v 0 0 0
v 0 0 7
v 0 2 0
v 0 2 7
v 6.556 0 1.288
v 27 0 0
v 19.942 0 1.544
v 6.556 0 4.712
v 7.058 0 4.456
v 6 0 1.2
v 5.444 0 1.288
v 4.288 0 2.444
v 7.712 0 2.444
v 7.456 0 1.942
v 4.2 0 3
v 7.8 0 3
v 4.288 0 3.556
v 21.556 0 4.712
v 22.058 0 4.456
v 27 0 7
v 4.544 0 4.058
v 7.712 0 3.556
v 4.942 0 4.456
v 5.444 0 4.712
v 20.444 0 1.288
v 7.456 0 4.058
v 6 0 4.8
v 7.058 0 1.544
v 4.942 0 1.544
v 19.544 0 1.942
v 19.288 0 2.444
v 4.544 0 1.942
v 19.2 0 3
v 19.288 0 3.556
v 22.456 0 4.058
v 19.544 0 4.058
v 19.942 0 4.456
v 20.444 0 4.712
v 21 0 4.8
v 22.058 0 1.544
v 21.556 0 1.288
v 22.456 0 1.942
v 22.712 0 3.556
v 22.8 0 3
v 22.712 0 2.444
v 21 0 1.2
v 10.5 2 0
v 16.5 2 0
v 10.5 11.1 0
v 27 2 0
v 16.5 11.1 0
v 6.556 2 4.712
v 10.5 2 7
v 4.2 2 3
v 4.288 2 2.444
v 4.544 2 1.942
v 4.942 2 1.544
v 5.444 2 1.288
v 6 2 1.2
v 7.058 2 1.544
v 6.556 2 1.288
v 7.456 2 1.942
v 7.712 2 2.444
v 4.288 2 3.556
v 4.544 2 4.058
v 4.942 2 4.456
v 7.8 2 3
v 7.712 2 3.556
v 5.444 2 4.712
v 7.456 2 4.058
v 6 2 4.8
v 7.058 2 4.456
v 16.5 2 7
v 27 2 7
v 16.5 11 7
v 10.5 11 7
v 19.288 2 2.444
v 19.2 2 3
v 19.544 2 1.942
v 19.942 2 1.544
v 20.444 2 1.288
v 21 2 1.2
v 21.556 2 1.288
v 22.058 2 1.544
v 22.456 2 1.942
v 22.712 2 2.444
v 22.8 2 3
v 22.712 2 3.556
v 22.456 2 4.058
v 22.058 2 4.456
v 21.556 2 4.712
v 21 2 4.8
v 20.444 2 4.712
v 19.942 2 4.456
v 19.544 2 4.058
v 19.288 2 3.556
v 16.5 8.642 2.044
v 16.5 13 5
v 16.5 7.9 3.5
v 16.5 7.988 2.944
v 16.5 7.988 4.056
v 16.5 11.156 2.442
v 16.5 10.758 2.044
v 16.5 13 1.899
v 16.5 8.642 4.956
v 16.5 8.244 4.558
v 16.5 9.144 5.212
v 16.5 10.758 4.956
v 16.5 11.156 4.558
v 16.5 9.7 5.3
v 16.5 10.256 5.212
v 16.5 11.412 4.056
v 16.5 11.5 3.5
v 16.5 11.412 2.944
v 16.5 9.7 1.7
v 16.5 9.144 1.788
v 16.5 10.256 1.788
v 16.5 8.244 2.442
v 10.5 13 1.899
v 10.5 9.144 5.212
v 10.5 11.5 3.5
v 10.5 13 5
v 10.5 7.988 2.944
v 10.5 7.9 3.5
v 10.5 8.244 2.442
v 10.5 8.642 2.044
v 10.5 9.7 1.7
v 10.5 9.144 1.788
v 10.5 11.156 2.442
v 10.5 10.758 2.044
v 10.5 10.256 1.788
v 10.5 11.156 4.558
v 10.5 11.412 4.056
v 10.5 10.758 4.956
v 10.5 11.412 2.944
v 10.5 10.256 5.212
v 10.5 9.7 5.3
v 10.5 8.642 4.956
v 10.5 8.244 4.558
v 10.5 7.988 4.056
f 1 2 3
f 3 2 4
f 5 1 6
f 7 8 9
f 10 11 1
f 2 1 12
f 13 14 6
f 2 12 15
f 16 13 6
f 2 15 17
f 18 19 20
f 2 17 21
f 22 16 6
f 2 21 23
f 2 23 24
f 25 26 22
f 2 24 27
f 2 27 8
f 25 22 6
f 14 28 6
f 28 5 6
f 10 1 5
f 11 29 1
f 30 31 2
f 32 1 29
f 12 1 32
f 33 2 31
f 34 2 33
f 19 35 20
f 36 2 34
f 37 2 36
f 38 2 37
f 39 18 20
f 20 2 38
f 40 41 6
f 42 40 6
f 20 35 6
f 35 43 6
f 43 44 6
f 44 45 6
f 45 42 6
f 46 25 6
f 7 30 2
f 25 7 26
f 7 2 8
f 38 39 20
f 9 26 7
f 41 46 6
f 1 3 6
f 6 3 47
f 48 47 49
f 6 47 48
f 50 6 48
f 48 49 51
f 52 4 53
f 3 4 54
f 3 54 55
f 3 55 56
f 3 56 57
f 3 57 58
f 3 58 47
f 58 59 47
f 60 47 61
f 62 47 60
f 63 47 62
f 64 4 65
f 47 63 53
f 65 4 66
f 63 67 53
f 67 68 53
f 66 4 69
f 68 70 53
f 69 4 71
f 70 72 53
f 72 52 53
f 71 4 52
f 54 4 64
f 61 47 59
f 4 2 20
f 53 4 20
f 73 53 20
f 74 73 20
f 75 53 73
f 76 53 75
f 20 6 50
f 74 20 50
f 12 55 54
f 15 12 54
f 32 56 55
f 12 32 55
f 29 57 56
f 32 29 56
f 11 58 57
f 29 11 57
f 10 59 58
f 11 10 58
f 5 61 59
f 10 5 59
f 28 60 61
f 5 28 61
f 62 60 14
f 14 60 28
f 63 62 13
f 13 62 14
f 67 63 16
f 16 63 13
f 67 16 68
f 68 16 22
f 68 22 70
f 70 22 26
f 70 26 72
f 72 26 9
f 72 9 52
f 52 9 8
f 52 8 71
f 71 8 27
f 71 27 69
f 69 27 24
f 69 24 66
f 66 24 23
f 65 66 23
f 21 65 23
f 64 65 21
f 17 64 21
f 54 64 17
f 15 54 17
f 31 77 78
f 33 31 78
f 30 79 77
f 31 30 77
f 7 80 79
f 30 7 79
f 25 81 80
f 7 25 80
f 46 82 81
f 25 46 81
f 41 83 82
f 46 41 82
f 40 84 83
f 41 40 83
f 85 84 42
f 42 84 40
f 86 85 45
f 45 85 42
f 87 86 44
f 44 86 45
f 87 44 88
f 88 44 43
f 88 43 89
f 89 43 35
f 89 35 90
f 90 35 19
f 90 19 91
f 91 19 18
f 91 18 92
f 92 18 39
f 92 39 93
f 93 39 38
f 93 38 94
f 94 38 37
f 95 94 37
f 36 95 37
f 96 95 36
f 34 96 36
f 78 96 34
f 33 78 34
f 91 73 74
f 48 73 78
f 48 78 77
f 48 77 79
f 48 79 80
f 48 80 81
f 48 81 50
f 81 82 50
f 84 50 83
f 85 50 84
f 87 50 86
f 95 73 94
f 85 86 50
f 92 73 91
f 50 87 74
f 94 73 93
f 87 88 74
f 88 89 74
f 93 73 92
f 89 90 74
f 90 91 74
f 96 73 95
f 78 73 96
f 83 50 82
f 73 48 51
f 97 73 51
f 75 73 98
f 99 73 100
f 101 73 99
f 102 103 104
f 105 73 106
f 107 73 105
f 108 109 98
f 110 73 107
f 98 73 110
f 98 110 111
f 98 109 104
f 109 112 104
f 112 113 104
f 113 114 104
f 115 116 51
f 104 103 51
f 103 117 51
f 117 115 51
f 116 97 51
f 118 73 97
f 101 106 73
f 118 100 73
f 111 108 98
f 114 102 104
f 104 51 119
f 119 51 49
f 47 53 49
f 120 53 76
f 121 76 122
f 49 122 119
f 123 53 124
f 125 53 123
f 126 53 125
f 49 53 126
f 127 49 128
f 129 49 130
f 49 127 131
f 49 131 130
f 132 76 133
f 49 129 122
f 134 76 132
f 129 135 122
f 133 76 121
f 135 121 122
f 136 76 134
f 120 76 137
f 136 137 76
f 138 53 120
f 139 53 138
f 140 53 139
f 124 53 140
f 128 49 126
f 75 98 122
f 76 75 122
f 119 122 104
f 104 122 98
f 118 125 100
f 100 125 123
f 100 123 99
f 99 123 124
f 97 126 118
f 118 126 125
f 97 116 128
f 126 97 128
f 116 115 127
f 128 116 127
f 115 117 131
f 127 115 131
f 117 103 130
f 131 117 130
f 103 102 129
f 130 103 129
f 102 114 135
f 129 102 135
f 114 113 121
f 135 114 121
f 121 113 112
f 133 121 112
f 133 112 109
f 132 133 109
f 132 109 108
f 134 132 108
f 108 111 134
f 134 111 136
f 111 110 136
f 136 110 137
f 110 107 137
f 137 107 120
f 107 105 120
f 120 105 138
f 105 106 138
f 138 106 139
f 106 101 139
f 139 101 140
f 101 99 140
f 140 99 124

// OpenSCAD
//  Prusa i3 Rework Extruder Additional Fan Mounts Customizable
//
//  I printed the Prusa i3 Rework Extruder Upgrade.
//  http://www.thingiverse.com/thing:291291
//  It only had one fan mount which I used for the extruder
//  cold end fan shroud.  I wanted to add an additional
//  fan and shroud
//  http://www.thingiverse.com/thing:217253
//  to cool my PLA prints but had no way to mount both
//  fans.  So I created this little adapter that will 
//  allow two additonal fans to be added using the 
//  hot end mounting screws.  One will mount under the
//  big gear.  If you need another you can mount it on 
//  the other side.
//  
//  Problem solved.
//  
//  I printed in PLA .3 layer height
//
//  aBrainDump.com
//
//
//

// Pivot point length
pivotlength = 9.7; 

// Pivot point width
pivotwidth = 6;

/* [Hidden] */

// Distance between mounting holes
mountholedistance = 15;

$fn=20;
 
difference()
{
cube([27,2,7]);

rotate([90])
translate([6,3,-5])
cylinder(h=10,r=3.6/2);

rotate([90])
translate([21,3,-5])
cylinder(h=10,r=3.6/2);
}


difference()
{
translate([(27/2)-(pivotwidth/2),0,0])
cube([pivotwidth,pivotlength+3.3,7]);

translate([(27/2)-(pivotwidth/2),pivotlength+4.3,4])
rotate([45,0,0])
cube([6+pivotwidth,8,7]);

translate([(27/2)-(pivotwidth/2),pivotlength+4.3,-7])
rotate([45,0,0])
cube([6+pivotwidth,8,7]);

rotate([0,90])
translate([-3.5,pivotlength,9])
cylinder(h=10+pivotwidth,r=3.6/2);


}
